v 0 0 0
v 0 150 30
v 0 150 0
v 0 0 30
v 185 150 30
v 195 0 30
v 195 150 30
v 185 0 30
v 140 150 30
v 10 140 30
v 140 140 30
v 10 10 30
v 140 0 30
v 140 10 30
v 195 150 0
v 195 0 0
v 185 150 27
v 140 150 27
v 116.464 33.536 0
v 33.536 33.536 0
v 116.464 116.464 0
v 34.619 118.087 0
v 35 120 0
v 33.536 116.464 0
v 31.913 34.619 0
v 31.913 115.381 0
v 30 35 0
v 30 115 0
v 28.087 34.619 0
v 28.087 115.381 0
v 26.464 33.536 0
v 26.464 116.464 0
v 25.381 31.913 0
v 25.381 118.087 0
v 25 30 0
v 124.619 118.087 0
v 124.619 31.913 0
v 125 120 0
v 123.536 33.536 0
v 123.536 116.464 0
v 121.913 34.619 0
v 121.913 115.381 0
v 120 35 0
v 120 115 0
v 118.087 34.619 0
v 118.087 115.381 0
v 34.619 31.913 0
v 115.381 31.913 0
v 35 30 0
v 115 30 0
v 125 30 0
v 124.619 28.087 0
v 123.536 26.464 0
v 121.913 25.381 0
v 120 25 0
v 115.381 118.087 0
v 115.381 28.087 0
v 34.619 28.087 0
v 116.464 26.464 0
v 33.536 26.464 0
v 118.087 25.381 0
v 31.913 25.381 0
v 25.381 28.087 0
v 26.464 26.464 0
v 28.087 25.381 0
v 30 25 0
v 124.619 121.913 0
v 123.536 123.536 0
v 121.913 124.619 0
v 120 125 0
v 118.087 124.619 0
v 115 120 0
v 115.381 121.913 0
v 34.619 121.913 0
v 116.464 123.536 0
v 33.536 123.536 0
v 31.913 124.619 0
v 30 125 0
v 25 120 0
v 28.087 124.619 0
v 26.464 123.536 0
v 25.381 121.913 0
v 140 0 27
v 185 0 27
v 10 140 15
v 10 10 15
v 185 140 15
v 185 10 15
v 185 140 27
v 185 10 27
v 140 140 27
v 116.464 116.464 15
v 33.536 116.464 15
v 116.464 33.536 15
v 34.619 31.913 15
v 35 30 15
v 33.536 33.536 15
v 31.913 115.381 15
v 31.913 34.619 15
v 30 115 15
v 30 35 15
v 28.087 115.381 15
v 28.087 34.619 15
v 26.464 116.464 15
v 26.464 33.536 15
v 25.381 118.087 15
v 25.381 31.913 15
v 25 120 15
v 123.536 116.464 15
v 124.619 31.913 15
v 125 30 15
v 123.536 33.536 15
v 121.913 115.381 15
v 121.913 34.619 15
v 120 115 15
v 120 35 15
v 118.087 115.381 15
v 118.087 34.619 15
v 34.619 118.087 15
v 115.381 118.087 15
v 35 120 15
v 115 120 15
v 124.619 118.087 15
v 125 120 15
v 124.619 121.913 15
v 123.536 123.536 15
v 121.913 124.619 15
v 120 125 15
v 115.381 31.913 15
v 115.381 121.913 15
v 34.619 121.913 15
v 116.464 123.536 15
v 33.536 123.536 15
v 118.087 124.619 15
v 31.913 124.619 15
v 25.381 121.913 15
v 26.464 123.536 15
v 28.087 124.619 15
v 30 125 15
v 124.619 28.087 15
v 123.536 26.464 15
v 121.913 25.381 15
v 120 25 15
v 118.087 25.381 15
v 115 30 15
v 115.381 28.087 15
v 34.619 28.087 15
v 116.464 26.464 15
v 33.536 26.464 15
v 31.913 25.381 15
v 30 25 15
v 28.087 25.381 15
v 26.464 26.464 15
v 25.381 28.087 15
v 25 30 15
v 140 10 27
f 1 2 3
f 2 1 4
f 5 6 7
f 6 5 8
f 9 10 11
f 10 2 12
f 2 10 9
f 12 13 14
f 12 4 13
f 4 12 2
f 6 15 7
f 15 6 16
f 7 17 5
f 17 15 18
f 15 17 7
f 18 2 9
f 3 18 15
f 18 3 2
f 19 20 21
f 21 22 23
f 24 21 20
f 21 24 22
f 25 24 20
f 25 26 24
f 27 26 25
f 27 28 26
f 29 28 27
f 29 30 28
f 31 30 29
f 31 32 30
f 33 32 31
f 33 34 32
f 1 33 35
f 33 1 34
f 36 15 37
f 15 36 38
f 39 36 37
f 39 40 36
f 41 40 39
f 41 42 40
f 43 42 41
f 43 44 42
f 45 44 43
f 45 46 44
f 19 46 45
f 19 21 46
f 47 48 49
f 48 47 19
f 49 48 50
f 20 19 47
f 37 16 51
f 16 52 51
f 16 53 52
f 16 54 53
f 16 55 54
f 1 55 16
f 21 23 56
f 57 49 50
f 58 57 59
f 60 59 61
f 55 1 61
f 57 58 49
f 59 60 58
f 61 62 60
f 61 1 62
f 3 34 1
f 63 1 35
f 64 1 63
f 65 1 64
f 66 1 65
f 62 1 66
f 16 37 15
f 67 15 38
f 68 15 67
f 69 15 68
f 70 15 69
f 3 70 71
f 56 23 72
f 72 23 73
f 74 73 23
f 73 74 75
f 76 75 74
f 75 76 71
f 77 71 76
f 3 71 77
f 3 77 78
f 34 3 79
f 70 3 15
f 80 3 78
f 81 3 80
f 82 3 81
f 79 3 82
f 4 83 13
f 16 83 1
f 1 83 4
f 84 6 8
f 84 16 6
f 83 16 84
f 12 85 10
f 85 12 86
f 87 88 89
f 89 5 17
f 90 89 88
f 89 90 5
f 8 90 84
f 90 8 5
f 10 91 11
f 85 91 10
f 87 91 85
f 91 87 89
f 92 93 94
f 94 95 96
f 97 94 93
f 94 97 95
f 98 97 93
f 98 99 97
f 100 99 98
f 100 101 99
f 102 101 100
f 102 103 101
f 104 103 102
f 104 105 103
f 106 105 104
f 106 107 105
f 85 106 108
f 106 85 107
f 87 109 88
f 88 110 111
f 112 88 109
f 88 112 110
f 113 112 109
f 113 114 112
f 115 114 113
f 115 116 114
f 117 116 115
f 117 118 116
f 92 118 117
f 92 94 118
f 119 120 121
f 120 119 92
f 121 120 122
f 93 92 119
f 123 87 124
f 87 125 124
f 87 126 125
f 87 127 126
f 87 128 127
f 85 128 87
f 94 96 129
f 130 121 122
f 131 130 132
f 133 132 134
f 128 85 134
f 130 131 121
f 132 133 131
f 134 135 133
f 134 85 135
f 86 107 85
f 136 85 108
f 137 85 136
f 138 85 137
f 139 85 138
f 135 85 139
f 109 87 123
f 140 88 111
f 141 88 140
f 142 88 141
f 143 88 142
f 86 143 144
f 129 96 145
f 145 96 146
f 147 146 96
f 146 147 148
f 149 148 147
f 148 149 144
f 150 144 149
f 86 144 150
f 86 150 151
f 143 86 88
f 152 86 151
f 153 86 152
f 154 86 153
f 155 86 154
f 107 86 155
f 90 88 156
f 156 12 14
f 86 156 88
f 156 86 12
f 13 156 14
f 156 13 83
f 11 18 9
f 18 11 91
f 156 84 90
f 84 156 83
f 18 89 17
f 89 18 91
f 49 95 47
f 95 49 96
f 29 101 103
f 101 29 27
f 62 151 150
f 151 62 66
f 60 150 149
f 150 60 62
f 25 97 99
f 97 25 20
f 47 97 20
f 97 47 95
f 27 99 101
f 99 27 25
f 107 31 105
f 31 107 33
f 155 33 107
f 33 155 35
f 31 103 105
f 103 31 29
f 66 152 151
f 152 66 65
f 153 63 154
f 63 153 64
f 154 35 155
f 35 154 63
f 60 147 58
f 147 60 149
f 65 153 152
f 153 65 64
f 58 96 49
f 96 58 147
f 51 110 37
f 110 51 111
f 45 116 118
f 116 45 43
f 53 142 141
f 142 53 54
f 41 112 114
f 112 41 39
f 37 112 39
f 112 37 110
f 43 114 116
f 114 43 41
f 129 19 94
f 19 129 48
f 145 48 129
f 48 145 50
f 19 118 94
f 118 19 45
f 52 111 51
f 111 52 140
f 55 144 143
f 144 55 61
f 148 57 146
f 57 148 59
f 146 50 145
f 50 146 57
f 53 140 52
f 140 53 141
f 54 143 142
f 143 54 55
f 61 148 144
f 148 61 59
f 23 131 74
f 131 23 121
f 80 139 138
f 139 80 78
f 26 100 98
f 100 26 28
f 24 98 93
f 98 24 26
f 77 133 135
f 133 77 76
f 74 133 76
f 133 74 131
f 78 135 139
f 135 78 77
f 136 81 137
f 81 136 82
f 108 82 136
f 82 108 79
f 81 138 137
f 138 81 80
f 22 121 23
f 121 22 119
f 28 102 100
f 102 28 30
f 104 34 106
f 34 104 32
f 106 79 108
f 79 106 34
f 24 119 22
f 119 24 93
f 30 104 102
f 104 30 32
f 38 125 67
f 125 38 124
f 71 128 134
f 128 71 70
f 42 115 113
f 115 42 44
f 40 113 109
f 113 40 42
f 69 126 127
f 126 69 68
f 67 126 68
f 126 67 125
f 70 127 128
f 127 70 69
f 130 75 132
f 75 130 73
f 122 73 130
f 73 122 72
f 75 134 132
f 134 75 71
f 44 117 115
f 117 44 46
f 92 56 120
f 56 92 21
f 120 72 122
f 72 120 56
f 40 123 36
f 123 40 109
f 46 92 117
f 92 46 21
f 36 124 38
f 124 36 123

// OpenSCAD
// Eicher Bulldog Bauteil 3
difference() {
cube([195,150,30]);
translate([10,10,15])cube([175,130,15]);
translate([140,0,27])cube([45,150,3]);
translate([30,30,0])cylinder(15,10/2,10/2);
translate([120,30,0])cylinder(15,10/2,10/2);
translate([30,120,0])cylinder(15,10/2,10/2);
translate([120,120,0])cylinder(15,10/2,10/2);
}
